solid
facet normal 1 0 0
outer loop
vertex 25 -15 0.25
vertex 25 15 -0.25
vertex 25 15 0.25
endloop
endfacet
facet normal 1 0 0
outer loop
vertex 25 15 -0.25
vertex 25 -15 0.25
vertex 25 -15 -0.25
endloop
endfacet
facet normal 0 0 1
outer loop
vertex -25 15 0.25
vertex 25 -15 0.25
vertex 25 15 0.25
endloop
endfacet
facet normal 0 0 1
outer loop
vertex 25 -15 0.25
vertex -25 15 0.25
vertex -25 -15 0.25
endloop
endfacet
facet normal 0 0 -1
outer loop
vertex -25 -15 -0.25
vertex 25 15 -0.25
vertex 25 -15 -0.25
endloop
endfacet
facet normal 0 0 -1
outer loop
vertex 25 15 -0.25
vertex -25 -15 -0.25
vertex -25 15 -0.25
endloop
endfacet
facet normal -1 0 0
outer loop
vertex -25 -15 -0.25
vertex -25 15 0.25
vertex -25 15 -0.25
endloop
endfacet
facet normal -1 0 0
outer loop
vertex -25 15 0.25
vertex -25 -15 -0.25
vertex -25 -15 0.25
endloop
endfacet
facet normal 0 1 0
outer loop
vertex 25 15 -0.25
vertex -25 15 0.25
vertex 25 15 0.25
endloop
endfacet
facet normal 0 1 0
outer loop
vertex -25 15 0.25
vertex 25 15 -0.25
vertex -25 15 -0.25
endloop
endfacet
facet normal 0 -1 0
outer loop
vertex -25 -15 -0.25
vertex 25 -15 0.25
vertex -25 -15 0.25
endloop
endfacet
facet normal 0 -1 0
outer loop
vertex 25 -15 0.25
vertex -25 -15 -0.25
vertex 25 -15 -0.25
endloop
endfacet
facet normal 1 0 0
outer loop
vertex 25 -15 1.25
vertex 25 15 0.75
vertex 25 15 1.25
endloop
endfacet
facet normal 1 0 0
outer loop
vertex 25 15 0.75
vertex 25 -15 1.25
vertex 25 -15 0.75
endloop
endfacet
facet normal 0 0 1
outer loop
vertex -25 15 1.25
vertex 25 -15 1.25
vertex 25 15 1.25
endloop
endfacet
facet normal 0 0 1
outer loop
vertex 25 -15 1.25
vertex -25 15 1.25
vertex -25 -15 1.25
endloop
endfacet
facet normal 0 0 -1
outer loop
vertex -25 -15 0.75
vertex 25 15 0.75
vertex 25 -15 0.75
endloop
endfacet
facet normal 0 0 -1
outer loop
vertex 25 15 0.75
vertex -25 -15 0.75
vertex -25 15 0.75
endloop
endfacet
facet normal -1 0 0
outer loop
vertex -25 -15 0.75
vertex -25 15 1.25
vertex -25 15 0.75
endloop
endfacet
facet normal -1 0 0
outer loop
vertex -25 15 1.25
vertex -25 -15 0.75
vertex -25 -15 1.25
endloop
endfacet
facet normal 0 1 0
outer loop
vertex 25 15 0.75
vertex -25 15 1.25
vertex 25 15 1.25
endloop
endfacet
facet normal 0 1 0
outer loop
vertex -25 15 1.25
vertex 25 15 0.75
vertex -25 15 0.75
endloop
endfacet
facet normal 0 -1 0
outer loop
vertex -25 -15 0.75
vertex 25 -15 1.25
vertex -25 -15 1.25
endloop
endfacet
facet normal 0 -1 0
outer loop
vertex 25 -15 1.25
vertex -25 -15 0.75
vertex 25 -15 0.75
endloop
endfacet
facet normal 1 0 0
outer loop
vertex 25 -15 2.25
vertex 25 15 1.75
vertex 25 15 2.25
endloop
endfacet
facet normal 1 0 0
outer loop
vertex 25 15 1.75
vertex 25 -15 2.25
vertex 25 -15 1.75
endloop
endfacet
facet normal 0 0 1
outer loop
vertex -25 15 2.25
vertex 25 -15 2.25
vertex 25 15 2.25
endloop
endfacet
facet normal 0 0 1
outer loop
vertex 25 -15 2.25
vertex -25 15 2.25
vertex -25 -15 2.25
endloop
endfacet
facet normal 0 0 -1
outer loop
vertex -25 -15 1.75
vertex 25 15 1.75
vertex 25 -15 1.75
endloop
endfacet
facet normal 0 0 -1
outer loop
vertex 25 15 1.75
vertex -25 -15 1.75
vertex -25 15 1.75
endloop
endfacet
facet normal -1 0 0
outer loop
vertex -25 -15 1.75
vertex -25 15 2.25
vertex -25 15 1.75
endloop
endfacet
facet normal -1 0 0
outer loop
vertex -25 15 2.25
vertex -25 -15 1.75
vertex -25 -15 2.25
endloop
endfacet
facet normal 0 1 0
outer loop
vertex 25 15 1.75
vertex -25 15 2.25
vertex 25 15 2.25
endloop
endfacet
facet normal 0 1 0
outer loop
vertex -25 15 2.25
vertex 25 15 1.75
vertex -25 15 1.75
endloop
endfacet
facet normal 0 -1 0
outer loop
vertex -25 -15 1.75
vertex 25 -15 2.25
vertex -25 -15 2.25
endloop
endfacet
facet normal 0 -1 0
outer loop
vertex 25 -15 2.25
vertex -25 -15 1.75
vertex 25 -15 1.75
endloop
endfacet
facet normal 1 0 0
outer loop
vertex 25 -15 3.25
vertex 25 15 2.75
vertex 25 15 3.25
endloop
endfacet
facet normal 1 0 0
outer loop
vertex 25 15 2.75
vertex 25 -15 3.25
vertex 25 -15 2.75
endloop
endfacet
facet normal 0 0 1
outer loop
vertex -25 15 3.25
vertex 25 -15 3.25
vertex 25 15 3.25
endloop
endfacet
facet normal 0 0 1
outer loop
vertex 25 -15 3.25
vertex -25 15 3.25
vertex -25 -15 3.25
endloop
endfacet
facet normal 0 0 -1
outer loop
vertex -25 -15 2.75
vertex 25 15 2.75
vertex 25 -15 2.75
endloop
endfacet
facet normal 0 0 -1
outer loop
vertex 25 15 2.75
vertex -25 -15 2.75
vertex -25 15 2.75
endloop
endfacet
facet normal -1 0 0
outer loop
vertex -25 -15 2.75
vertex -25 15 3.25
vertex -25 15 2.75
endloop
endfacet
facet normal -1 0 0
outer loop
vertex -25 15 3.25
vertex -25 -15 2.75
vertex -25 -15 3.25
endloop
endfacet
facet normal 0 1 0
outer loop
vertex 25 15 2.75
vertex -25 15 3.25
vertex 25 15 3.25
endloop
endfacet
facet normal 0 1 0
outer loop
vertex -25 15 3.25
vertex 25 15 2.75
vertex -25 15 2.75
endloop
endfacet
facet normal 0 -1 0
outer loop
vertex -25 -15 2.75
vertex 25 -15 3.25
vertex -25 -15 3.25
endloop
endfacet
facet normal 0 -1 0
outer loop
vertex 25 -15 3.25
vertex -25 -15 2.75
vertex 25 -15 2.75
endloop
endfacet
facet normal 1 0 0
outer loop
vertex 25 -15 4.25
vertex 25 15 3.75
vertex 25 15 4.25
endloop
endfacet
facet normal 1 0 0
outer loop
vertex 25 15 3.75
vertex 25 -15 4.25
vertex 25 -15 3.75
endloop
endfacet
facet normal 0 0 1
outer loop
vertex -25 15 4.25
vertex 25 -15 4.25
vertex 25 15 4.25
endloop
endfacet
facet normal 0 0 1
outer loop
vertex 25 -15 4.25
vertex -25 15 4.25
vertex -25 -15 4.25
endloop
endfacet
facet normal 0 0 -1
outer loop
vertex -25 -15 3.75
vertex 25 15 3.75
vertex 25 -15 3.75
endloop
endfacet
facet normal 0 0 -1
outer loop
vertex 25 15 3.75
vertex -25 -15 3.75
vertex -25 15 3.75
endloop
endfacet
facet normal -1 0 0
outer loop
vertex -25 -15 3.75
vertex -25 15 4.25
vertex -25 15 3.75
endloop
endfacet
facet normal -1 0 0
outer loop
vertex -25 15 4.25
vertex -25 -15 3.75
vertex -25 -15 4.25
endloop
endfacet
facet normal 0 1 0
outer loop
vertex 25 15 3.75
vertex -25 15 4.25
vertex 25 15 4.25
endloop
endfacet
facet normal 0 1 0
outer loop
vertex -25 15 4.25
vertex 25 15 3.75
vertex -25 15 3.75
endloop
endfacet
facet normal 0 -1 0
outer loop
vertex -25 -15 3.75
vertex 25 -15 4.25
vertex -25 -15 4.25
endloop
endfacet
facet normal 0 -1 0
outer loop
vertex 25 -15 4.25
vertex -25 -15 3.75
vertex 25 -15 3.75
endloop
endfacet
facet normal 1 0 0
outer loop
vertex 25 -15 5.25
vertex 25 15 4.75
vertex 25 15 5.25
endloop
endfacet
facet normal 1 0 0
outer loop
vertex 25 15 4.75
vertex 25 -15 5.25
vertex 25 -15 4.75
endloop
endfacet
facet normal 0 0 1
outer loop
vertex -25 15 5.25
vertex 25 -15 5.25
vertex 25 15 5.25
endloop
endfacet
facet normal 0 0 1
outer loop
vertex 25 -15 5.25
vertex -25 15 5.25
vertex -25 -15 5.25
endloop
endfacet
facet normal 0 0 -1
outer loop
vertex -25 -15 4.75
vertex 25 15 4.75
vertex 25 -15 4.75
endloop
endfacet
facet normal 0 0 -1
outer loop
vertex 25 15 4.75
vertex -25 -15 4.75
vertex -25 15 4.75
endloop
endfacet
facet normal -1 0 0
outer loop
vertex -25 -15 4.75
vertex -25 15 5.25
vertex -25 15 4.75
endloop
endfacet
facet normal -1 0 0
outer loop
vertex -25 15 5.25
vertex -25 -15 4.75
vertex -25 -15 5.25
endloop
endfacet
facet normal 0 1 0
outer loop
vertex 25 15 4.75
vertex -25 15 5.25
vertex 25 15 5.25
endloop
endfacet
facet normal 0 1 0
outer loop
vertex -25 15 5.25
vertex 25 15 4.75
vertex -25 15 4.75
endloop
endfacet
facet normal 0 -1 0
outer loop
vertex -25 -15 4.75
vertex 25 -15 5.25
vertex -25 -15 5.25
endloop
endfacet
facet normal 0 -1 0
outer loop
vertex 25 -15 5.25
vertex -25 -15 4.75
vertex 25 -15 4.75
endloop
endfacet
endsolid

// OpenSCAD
// Plate dimensions
plate_length = 50;  // Adjust as needed
plate_width = 30;   // Adjust as needed
plate_thickness = 0.5; // Reduced thickness to match the original model
plate_spacing = 0.5; // Adjusted spacing to match the original model

// Module to create a single plate
module plate() {
    cube([plate_length, plate_width, plate_thickness], center=true);
}

// Generate the required number of plates
for (i = [0:5]) {
    translate([0, 0, i * (plate_thickness + plate_spacing)]) // Adjusted spacing
    plate();
}
